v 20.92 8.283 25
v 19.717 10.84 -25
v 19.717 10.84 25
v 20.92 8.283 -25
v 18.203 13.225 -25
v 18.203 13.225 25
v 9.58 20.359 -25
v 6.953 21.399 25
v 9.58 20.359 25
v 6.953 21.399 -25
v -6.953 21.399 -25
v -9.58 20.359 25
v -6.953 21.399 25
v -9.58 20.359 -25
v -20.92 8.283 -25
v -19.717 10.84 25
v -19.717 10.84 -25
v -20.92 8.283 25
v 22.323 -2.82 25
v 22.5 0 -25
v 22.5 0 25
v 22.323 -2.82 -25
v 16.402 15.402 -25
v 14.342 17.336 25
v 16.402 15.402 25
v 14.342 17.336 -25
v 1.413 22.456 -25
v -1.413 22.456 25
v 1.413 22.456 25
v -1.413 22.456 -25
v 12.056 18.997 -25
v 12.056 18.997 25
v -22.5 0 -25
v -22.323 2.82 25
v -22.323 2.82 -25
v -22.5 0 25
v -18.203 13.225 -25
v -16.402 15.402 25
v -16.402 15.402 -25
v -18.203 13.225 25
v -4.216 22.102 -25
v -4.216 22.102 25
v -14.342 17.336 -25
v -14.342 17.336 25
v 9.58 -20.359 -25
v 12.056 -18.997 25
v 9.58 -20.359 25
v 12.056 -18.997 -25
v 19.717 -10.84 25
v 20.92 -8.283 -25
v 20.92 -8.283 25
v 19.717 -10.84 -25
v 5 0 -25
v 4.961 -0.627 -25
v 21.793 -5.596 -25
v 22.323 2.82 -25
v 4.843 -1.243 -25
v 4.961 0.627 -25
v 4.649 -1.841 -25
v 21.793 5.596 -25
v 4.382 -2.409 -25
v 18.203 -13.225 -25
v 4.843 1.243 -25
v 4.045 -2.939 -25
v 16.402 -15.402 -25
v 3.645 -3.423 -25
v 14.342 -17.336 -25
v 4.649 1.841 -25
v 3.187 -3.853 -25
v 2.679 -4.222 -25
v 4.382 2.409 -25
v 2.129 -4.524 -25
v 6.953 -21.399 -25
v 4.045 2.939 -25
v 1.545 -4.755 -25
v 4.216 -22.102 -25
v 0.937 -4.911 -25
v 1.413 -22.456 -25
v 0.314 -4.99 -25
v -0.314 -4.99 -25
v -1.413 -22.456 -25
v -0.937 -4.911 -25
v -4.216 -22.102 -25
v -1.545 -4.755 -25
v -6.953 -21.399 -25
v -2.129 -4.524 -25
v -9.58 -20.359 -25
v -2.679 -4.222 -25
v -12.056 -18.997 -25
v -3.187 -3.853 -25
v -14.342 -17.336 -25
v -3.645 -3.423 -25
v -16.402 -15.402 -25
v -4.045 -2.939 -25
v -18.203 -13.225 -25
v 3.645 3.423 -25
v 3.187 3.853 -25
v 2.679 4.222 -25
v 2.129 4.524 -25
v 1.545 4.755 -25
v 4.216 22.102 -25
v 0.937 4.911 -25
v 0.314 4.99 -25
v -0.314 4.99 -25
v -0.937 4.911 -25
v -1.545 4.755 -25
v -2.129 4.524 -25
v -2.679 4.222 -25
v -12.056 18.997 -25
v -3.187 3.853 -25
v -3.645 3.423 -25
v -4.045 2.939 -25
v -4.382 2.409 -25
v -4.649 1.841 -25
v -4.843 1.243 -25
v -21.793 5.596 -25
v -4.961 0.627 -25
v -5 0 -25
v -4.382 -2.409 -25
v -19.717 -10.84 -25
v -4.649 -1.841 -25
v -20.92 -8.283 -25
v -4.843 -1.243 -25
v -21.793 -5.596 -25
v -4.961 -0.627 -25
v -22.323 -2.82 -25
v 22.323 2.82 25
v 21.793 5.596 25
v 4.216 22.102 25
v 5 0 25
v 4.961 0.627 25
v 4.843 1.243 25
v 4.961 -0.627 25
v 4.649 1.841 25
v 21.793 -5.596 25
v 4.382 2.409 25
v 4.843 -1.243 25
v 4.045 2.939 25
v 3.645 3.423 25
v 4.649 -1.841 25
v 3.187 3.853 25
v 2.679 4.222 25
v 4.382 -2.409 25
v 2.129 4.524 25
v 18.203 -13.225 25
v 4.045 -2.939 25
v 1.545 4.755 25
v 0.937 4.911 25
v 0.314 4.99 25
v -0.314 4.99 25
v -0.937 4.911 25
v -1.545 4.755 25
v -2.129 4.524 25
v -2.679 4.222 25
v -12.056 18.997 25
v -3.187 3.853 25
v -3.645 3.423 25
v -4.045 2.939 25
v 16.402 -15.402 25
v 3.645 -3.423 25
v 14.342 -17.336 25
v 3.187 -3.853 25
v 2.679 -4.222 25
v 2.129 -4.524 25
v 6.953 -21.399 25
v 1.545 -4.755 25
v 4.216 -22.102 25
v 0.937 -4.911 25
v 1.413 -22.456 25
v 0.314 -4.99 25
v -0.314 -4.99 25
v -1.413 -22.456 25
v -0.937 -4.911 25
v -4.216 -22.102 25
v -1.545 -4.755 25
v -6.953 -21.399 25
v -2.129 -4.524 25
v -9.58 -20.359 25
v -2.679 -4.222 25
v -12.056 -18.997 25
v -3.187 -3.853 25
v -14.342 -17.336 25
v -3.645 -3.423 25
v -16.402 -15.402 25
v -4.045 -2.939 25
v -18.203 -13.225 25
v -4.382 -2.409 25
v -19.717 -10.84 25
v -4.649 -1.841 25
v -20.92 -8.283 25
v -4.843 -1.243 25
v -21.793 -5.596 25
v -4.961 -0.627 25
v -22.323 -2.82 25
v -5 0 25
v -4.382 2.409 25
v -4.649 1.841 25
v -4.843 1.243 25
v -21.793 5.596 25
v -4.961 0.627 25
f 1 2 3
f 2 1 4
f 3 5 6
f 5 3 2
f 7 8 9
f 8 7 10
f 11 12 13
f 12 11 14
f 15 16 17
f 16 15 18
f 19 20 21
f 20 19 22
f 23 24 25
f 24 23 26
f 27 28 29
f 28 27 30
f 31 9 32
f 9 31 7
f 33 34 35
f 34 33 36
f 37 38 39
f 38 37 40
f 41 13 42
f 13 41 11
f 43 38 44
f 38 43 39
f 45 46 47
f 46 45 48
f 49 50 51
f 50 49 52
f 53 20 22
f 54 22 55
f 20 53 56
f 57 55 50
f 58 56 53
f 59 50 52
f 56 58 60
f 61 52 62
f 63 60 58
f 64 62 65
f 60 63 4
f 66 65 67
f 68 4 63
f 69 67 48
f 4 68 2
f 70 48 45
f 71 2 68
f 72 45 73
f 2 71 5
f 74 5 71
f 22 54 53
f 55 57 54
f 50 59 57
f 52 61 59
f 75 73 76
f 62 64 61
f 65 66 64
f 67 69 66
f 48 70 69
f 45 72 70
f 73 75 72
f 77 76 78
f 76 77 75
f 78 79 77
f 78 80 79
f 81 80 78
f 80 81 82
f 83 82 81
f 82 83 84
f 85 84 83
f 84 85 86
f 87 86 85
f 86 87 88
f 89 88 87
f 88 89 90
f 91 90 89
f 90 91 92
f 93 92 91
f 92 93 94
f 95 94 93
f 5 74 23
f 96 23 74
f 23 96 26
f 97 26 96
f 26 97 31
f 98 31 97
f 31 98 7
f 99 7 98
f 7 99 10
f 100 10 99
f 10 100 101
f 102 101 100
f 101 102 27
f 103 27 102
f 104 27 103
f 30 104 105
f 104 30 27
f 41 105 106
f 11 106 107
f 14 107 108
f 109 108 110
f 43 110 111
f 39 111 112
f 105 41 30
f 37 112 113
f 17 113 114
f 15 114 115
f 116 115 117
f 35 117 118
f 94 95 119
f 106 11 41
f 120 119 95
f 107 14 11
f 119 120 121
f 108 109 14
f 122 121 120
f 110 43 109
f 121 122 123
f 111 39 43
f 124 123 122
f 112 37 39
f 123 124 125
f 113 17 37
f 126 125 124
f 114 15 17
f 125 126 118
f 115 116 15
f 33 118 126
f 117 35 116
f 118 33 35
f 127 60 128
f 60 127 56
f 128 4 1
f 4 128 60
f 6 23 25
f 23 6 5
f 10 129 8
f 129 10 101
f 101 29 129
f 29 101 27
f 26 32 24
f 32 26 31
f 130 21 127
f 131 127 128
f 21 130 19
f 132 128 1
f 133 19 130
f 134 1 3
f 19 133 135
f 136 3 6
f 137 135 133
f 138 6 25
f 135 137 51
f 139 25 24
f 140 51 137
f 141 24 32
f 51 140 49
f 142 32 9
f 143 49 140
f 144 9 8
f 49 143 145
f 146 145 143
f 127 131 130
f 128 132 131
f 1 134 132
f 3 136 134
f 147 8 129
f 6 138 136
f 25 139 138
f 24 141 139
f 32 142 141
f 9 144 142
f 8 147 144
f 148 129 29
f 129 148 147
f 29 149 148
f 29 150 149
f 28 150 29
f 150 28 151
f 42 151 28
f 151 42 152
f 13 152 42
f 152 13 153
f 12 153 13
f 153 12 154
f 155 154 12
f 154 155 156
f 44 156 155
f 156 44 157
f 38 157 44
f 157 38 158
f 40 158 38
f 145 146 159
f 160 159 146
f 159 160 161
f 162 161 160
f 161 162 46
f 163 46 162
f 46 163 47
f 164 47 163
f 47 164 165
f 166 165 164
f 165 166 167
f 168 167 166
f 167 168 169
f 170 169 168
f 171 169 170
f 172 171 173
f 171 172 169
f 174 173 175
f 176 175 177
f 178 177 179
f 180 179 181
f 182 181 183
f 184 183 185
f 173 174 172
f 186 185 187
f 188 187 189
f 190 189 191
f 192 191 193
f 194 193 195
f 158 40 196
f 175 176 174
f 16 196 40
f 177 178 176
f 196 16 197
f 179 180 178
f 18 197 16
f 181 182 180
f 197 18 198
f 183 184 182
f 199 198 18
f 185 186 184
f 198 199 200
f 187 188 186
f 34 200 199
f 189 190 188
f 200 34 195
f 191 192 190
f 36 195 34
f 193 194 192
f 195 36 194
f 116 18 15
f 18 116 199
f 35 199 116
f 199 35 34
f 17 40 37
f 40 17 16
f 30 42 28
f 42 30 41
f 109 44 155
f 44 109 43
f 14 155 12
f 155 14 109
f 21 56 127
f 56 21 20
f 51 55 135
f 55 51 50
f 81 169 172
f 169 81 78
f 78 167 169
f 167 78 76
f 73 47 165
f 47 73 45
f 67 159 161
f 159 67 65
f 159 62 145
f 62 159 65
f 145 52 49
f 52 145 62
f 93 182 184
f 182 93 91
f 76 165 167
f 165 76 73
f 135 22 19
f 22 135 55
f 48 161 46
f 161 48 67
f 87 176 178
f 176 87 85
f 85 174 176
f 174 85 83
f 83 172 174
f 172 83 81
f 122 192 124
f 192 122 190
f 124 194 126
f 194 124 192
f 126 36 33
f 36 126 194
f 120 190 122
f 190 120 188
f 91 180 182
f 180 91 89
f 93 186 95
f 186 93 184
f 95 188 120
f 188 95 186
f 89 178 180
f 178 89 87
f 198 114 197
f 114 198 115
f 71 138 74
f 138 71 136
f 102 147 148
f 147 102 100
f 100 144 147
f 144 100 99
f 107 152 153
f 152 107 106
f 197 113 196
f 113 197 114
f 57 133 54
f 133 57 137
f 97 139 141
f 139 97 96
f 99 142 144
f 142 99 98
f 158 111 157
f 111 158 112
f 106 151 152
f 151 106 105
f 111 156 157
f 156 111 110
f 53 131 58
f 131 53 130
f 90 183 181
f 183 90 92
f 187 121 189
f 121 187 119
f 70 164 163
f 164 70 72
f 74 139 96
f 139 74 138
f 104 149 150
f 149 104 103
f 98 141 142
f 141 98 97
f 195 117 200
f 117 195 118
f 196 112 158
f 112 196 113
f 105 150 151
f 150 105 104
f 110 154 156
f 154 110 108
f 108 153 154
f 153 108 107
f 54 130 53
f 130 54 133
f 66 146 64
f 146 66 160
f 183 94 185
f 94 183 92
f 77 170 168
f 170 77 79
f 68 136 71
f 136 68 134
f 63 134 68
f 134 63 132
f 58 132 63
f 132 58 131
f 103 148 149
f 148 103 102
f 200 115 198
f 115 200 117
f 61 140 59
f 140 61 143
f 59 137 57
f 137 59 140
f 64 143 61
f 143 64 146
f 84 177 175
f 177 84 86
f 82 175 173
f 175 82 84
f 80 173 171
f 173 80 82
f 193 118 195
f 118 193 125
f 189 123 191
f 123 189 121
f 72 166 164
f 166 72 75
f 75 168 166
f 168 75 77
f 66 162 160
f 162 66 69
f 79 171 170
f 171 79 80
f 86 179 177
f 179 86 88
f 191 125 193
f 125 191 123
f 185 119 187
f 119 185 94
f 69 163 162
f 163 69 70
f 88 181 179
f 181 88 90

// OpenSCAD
$fn = 50;


difference() {
	union() {
		translate(v = [0, 0, -25.0000000000]) {
			cylinder(h = 50, r = 22.5000000000);
		}
	}
	union() {
		translate(v = [0, 0, -100.0000000000]) {
			cylinder(h = 200, r = 5);
		}
	}
}
